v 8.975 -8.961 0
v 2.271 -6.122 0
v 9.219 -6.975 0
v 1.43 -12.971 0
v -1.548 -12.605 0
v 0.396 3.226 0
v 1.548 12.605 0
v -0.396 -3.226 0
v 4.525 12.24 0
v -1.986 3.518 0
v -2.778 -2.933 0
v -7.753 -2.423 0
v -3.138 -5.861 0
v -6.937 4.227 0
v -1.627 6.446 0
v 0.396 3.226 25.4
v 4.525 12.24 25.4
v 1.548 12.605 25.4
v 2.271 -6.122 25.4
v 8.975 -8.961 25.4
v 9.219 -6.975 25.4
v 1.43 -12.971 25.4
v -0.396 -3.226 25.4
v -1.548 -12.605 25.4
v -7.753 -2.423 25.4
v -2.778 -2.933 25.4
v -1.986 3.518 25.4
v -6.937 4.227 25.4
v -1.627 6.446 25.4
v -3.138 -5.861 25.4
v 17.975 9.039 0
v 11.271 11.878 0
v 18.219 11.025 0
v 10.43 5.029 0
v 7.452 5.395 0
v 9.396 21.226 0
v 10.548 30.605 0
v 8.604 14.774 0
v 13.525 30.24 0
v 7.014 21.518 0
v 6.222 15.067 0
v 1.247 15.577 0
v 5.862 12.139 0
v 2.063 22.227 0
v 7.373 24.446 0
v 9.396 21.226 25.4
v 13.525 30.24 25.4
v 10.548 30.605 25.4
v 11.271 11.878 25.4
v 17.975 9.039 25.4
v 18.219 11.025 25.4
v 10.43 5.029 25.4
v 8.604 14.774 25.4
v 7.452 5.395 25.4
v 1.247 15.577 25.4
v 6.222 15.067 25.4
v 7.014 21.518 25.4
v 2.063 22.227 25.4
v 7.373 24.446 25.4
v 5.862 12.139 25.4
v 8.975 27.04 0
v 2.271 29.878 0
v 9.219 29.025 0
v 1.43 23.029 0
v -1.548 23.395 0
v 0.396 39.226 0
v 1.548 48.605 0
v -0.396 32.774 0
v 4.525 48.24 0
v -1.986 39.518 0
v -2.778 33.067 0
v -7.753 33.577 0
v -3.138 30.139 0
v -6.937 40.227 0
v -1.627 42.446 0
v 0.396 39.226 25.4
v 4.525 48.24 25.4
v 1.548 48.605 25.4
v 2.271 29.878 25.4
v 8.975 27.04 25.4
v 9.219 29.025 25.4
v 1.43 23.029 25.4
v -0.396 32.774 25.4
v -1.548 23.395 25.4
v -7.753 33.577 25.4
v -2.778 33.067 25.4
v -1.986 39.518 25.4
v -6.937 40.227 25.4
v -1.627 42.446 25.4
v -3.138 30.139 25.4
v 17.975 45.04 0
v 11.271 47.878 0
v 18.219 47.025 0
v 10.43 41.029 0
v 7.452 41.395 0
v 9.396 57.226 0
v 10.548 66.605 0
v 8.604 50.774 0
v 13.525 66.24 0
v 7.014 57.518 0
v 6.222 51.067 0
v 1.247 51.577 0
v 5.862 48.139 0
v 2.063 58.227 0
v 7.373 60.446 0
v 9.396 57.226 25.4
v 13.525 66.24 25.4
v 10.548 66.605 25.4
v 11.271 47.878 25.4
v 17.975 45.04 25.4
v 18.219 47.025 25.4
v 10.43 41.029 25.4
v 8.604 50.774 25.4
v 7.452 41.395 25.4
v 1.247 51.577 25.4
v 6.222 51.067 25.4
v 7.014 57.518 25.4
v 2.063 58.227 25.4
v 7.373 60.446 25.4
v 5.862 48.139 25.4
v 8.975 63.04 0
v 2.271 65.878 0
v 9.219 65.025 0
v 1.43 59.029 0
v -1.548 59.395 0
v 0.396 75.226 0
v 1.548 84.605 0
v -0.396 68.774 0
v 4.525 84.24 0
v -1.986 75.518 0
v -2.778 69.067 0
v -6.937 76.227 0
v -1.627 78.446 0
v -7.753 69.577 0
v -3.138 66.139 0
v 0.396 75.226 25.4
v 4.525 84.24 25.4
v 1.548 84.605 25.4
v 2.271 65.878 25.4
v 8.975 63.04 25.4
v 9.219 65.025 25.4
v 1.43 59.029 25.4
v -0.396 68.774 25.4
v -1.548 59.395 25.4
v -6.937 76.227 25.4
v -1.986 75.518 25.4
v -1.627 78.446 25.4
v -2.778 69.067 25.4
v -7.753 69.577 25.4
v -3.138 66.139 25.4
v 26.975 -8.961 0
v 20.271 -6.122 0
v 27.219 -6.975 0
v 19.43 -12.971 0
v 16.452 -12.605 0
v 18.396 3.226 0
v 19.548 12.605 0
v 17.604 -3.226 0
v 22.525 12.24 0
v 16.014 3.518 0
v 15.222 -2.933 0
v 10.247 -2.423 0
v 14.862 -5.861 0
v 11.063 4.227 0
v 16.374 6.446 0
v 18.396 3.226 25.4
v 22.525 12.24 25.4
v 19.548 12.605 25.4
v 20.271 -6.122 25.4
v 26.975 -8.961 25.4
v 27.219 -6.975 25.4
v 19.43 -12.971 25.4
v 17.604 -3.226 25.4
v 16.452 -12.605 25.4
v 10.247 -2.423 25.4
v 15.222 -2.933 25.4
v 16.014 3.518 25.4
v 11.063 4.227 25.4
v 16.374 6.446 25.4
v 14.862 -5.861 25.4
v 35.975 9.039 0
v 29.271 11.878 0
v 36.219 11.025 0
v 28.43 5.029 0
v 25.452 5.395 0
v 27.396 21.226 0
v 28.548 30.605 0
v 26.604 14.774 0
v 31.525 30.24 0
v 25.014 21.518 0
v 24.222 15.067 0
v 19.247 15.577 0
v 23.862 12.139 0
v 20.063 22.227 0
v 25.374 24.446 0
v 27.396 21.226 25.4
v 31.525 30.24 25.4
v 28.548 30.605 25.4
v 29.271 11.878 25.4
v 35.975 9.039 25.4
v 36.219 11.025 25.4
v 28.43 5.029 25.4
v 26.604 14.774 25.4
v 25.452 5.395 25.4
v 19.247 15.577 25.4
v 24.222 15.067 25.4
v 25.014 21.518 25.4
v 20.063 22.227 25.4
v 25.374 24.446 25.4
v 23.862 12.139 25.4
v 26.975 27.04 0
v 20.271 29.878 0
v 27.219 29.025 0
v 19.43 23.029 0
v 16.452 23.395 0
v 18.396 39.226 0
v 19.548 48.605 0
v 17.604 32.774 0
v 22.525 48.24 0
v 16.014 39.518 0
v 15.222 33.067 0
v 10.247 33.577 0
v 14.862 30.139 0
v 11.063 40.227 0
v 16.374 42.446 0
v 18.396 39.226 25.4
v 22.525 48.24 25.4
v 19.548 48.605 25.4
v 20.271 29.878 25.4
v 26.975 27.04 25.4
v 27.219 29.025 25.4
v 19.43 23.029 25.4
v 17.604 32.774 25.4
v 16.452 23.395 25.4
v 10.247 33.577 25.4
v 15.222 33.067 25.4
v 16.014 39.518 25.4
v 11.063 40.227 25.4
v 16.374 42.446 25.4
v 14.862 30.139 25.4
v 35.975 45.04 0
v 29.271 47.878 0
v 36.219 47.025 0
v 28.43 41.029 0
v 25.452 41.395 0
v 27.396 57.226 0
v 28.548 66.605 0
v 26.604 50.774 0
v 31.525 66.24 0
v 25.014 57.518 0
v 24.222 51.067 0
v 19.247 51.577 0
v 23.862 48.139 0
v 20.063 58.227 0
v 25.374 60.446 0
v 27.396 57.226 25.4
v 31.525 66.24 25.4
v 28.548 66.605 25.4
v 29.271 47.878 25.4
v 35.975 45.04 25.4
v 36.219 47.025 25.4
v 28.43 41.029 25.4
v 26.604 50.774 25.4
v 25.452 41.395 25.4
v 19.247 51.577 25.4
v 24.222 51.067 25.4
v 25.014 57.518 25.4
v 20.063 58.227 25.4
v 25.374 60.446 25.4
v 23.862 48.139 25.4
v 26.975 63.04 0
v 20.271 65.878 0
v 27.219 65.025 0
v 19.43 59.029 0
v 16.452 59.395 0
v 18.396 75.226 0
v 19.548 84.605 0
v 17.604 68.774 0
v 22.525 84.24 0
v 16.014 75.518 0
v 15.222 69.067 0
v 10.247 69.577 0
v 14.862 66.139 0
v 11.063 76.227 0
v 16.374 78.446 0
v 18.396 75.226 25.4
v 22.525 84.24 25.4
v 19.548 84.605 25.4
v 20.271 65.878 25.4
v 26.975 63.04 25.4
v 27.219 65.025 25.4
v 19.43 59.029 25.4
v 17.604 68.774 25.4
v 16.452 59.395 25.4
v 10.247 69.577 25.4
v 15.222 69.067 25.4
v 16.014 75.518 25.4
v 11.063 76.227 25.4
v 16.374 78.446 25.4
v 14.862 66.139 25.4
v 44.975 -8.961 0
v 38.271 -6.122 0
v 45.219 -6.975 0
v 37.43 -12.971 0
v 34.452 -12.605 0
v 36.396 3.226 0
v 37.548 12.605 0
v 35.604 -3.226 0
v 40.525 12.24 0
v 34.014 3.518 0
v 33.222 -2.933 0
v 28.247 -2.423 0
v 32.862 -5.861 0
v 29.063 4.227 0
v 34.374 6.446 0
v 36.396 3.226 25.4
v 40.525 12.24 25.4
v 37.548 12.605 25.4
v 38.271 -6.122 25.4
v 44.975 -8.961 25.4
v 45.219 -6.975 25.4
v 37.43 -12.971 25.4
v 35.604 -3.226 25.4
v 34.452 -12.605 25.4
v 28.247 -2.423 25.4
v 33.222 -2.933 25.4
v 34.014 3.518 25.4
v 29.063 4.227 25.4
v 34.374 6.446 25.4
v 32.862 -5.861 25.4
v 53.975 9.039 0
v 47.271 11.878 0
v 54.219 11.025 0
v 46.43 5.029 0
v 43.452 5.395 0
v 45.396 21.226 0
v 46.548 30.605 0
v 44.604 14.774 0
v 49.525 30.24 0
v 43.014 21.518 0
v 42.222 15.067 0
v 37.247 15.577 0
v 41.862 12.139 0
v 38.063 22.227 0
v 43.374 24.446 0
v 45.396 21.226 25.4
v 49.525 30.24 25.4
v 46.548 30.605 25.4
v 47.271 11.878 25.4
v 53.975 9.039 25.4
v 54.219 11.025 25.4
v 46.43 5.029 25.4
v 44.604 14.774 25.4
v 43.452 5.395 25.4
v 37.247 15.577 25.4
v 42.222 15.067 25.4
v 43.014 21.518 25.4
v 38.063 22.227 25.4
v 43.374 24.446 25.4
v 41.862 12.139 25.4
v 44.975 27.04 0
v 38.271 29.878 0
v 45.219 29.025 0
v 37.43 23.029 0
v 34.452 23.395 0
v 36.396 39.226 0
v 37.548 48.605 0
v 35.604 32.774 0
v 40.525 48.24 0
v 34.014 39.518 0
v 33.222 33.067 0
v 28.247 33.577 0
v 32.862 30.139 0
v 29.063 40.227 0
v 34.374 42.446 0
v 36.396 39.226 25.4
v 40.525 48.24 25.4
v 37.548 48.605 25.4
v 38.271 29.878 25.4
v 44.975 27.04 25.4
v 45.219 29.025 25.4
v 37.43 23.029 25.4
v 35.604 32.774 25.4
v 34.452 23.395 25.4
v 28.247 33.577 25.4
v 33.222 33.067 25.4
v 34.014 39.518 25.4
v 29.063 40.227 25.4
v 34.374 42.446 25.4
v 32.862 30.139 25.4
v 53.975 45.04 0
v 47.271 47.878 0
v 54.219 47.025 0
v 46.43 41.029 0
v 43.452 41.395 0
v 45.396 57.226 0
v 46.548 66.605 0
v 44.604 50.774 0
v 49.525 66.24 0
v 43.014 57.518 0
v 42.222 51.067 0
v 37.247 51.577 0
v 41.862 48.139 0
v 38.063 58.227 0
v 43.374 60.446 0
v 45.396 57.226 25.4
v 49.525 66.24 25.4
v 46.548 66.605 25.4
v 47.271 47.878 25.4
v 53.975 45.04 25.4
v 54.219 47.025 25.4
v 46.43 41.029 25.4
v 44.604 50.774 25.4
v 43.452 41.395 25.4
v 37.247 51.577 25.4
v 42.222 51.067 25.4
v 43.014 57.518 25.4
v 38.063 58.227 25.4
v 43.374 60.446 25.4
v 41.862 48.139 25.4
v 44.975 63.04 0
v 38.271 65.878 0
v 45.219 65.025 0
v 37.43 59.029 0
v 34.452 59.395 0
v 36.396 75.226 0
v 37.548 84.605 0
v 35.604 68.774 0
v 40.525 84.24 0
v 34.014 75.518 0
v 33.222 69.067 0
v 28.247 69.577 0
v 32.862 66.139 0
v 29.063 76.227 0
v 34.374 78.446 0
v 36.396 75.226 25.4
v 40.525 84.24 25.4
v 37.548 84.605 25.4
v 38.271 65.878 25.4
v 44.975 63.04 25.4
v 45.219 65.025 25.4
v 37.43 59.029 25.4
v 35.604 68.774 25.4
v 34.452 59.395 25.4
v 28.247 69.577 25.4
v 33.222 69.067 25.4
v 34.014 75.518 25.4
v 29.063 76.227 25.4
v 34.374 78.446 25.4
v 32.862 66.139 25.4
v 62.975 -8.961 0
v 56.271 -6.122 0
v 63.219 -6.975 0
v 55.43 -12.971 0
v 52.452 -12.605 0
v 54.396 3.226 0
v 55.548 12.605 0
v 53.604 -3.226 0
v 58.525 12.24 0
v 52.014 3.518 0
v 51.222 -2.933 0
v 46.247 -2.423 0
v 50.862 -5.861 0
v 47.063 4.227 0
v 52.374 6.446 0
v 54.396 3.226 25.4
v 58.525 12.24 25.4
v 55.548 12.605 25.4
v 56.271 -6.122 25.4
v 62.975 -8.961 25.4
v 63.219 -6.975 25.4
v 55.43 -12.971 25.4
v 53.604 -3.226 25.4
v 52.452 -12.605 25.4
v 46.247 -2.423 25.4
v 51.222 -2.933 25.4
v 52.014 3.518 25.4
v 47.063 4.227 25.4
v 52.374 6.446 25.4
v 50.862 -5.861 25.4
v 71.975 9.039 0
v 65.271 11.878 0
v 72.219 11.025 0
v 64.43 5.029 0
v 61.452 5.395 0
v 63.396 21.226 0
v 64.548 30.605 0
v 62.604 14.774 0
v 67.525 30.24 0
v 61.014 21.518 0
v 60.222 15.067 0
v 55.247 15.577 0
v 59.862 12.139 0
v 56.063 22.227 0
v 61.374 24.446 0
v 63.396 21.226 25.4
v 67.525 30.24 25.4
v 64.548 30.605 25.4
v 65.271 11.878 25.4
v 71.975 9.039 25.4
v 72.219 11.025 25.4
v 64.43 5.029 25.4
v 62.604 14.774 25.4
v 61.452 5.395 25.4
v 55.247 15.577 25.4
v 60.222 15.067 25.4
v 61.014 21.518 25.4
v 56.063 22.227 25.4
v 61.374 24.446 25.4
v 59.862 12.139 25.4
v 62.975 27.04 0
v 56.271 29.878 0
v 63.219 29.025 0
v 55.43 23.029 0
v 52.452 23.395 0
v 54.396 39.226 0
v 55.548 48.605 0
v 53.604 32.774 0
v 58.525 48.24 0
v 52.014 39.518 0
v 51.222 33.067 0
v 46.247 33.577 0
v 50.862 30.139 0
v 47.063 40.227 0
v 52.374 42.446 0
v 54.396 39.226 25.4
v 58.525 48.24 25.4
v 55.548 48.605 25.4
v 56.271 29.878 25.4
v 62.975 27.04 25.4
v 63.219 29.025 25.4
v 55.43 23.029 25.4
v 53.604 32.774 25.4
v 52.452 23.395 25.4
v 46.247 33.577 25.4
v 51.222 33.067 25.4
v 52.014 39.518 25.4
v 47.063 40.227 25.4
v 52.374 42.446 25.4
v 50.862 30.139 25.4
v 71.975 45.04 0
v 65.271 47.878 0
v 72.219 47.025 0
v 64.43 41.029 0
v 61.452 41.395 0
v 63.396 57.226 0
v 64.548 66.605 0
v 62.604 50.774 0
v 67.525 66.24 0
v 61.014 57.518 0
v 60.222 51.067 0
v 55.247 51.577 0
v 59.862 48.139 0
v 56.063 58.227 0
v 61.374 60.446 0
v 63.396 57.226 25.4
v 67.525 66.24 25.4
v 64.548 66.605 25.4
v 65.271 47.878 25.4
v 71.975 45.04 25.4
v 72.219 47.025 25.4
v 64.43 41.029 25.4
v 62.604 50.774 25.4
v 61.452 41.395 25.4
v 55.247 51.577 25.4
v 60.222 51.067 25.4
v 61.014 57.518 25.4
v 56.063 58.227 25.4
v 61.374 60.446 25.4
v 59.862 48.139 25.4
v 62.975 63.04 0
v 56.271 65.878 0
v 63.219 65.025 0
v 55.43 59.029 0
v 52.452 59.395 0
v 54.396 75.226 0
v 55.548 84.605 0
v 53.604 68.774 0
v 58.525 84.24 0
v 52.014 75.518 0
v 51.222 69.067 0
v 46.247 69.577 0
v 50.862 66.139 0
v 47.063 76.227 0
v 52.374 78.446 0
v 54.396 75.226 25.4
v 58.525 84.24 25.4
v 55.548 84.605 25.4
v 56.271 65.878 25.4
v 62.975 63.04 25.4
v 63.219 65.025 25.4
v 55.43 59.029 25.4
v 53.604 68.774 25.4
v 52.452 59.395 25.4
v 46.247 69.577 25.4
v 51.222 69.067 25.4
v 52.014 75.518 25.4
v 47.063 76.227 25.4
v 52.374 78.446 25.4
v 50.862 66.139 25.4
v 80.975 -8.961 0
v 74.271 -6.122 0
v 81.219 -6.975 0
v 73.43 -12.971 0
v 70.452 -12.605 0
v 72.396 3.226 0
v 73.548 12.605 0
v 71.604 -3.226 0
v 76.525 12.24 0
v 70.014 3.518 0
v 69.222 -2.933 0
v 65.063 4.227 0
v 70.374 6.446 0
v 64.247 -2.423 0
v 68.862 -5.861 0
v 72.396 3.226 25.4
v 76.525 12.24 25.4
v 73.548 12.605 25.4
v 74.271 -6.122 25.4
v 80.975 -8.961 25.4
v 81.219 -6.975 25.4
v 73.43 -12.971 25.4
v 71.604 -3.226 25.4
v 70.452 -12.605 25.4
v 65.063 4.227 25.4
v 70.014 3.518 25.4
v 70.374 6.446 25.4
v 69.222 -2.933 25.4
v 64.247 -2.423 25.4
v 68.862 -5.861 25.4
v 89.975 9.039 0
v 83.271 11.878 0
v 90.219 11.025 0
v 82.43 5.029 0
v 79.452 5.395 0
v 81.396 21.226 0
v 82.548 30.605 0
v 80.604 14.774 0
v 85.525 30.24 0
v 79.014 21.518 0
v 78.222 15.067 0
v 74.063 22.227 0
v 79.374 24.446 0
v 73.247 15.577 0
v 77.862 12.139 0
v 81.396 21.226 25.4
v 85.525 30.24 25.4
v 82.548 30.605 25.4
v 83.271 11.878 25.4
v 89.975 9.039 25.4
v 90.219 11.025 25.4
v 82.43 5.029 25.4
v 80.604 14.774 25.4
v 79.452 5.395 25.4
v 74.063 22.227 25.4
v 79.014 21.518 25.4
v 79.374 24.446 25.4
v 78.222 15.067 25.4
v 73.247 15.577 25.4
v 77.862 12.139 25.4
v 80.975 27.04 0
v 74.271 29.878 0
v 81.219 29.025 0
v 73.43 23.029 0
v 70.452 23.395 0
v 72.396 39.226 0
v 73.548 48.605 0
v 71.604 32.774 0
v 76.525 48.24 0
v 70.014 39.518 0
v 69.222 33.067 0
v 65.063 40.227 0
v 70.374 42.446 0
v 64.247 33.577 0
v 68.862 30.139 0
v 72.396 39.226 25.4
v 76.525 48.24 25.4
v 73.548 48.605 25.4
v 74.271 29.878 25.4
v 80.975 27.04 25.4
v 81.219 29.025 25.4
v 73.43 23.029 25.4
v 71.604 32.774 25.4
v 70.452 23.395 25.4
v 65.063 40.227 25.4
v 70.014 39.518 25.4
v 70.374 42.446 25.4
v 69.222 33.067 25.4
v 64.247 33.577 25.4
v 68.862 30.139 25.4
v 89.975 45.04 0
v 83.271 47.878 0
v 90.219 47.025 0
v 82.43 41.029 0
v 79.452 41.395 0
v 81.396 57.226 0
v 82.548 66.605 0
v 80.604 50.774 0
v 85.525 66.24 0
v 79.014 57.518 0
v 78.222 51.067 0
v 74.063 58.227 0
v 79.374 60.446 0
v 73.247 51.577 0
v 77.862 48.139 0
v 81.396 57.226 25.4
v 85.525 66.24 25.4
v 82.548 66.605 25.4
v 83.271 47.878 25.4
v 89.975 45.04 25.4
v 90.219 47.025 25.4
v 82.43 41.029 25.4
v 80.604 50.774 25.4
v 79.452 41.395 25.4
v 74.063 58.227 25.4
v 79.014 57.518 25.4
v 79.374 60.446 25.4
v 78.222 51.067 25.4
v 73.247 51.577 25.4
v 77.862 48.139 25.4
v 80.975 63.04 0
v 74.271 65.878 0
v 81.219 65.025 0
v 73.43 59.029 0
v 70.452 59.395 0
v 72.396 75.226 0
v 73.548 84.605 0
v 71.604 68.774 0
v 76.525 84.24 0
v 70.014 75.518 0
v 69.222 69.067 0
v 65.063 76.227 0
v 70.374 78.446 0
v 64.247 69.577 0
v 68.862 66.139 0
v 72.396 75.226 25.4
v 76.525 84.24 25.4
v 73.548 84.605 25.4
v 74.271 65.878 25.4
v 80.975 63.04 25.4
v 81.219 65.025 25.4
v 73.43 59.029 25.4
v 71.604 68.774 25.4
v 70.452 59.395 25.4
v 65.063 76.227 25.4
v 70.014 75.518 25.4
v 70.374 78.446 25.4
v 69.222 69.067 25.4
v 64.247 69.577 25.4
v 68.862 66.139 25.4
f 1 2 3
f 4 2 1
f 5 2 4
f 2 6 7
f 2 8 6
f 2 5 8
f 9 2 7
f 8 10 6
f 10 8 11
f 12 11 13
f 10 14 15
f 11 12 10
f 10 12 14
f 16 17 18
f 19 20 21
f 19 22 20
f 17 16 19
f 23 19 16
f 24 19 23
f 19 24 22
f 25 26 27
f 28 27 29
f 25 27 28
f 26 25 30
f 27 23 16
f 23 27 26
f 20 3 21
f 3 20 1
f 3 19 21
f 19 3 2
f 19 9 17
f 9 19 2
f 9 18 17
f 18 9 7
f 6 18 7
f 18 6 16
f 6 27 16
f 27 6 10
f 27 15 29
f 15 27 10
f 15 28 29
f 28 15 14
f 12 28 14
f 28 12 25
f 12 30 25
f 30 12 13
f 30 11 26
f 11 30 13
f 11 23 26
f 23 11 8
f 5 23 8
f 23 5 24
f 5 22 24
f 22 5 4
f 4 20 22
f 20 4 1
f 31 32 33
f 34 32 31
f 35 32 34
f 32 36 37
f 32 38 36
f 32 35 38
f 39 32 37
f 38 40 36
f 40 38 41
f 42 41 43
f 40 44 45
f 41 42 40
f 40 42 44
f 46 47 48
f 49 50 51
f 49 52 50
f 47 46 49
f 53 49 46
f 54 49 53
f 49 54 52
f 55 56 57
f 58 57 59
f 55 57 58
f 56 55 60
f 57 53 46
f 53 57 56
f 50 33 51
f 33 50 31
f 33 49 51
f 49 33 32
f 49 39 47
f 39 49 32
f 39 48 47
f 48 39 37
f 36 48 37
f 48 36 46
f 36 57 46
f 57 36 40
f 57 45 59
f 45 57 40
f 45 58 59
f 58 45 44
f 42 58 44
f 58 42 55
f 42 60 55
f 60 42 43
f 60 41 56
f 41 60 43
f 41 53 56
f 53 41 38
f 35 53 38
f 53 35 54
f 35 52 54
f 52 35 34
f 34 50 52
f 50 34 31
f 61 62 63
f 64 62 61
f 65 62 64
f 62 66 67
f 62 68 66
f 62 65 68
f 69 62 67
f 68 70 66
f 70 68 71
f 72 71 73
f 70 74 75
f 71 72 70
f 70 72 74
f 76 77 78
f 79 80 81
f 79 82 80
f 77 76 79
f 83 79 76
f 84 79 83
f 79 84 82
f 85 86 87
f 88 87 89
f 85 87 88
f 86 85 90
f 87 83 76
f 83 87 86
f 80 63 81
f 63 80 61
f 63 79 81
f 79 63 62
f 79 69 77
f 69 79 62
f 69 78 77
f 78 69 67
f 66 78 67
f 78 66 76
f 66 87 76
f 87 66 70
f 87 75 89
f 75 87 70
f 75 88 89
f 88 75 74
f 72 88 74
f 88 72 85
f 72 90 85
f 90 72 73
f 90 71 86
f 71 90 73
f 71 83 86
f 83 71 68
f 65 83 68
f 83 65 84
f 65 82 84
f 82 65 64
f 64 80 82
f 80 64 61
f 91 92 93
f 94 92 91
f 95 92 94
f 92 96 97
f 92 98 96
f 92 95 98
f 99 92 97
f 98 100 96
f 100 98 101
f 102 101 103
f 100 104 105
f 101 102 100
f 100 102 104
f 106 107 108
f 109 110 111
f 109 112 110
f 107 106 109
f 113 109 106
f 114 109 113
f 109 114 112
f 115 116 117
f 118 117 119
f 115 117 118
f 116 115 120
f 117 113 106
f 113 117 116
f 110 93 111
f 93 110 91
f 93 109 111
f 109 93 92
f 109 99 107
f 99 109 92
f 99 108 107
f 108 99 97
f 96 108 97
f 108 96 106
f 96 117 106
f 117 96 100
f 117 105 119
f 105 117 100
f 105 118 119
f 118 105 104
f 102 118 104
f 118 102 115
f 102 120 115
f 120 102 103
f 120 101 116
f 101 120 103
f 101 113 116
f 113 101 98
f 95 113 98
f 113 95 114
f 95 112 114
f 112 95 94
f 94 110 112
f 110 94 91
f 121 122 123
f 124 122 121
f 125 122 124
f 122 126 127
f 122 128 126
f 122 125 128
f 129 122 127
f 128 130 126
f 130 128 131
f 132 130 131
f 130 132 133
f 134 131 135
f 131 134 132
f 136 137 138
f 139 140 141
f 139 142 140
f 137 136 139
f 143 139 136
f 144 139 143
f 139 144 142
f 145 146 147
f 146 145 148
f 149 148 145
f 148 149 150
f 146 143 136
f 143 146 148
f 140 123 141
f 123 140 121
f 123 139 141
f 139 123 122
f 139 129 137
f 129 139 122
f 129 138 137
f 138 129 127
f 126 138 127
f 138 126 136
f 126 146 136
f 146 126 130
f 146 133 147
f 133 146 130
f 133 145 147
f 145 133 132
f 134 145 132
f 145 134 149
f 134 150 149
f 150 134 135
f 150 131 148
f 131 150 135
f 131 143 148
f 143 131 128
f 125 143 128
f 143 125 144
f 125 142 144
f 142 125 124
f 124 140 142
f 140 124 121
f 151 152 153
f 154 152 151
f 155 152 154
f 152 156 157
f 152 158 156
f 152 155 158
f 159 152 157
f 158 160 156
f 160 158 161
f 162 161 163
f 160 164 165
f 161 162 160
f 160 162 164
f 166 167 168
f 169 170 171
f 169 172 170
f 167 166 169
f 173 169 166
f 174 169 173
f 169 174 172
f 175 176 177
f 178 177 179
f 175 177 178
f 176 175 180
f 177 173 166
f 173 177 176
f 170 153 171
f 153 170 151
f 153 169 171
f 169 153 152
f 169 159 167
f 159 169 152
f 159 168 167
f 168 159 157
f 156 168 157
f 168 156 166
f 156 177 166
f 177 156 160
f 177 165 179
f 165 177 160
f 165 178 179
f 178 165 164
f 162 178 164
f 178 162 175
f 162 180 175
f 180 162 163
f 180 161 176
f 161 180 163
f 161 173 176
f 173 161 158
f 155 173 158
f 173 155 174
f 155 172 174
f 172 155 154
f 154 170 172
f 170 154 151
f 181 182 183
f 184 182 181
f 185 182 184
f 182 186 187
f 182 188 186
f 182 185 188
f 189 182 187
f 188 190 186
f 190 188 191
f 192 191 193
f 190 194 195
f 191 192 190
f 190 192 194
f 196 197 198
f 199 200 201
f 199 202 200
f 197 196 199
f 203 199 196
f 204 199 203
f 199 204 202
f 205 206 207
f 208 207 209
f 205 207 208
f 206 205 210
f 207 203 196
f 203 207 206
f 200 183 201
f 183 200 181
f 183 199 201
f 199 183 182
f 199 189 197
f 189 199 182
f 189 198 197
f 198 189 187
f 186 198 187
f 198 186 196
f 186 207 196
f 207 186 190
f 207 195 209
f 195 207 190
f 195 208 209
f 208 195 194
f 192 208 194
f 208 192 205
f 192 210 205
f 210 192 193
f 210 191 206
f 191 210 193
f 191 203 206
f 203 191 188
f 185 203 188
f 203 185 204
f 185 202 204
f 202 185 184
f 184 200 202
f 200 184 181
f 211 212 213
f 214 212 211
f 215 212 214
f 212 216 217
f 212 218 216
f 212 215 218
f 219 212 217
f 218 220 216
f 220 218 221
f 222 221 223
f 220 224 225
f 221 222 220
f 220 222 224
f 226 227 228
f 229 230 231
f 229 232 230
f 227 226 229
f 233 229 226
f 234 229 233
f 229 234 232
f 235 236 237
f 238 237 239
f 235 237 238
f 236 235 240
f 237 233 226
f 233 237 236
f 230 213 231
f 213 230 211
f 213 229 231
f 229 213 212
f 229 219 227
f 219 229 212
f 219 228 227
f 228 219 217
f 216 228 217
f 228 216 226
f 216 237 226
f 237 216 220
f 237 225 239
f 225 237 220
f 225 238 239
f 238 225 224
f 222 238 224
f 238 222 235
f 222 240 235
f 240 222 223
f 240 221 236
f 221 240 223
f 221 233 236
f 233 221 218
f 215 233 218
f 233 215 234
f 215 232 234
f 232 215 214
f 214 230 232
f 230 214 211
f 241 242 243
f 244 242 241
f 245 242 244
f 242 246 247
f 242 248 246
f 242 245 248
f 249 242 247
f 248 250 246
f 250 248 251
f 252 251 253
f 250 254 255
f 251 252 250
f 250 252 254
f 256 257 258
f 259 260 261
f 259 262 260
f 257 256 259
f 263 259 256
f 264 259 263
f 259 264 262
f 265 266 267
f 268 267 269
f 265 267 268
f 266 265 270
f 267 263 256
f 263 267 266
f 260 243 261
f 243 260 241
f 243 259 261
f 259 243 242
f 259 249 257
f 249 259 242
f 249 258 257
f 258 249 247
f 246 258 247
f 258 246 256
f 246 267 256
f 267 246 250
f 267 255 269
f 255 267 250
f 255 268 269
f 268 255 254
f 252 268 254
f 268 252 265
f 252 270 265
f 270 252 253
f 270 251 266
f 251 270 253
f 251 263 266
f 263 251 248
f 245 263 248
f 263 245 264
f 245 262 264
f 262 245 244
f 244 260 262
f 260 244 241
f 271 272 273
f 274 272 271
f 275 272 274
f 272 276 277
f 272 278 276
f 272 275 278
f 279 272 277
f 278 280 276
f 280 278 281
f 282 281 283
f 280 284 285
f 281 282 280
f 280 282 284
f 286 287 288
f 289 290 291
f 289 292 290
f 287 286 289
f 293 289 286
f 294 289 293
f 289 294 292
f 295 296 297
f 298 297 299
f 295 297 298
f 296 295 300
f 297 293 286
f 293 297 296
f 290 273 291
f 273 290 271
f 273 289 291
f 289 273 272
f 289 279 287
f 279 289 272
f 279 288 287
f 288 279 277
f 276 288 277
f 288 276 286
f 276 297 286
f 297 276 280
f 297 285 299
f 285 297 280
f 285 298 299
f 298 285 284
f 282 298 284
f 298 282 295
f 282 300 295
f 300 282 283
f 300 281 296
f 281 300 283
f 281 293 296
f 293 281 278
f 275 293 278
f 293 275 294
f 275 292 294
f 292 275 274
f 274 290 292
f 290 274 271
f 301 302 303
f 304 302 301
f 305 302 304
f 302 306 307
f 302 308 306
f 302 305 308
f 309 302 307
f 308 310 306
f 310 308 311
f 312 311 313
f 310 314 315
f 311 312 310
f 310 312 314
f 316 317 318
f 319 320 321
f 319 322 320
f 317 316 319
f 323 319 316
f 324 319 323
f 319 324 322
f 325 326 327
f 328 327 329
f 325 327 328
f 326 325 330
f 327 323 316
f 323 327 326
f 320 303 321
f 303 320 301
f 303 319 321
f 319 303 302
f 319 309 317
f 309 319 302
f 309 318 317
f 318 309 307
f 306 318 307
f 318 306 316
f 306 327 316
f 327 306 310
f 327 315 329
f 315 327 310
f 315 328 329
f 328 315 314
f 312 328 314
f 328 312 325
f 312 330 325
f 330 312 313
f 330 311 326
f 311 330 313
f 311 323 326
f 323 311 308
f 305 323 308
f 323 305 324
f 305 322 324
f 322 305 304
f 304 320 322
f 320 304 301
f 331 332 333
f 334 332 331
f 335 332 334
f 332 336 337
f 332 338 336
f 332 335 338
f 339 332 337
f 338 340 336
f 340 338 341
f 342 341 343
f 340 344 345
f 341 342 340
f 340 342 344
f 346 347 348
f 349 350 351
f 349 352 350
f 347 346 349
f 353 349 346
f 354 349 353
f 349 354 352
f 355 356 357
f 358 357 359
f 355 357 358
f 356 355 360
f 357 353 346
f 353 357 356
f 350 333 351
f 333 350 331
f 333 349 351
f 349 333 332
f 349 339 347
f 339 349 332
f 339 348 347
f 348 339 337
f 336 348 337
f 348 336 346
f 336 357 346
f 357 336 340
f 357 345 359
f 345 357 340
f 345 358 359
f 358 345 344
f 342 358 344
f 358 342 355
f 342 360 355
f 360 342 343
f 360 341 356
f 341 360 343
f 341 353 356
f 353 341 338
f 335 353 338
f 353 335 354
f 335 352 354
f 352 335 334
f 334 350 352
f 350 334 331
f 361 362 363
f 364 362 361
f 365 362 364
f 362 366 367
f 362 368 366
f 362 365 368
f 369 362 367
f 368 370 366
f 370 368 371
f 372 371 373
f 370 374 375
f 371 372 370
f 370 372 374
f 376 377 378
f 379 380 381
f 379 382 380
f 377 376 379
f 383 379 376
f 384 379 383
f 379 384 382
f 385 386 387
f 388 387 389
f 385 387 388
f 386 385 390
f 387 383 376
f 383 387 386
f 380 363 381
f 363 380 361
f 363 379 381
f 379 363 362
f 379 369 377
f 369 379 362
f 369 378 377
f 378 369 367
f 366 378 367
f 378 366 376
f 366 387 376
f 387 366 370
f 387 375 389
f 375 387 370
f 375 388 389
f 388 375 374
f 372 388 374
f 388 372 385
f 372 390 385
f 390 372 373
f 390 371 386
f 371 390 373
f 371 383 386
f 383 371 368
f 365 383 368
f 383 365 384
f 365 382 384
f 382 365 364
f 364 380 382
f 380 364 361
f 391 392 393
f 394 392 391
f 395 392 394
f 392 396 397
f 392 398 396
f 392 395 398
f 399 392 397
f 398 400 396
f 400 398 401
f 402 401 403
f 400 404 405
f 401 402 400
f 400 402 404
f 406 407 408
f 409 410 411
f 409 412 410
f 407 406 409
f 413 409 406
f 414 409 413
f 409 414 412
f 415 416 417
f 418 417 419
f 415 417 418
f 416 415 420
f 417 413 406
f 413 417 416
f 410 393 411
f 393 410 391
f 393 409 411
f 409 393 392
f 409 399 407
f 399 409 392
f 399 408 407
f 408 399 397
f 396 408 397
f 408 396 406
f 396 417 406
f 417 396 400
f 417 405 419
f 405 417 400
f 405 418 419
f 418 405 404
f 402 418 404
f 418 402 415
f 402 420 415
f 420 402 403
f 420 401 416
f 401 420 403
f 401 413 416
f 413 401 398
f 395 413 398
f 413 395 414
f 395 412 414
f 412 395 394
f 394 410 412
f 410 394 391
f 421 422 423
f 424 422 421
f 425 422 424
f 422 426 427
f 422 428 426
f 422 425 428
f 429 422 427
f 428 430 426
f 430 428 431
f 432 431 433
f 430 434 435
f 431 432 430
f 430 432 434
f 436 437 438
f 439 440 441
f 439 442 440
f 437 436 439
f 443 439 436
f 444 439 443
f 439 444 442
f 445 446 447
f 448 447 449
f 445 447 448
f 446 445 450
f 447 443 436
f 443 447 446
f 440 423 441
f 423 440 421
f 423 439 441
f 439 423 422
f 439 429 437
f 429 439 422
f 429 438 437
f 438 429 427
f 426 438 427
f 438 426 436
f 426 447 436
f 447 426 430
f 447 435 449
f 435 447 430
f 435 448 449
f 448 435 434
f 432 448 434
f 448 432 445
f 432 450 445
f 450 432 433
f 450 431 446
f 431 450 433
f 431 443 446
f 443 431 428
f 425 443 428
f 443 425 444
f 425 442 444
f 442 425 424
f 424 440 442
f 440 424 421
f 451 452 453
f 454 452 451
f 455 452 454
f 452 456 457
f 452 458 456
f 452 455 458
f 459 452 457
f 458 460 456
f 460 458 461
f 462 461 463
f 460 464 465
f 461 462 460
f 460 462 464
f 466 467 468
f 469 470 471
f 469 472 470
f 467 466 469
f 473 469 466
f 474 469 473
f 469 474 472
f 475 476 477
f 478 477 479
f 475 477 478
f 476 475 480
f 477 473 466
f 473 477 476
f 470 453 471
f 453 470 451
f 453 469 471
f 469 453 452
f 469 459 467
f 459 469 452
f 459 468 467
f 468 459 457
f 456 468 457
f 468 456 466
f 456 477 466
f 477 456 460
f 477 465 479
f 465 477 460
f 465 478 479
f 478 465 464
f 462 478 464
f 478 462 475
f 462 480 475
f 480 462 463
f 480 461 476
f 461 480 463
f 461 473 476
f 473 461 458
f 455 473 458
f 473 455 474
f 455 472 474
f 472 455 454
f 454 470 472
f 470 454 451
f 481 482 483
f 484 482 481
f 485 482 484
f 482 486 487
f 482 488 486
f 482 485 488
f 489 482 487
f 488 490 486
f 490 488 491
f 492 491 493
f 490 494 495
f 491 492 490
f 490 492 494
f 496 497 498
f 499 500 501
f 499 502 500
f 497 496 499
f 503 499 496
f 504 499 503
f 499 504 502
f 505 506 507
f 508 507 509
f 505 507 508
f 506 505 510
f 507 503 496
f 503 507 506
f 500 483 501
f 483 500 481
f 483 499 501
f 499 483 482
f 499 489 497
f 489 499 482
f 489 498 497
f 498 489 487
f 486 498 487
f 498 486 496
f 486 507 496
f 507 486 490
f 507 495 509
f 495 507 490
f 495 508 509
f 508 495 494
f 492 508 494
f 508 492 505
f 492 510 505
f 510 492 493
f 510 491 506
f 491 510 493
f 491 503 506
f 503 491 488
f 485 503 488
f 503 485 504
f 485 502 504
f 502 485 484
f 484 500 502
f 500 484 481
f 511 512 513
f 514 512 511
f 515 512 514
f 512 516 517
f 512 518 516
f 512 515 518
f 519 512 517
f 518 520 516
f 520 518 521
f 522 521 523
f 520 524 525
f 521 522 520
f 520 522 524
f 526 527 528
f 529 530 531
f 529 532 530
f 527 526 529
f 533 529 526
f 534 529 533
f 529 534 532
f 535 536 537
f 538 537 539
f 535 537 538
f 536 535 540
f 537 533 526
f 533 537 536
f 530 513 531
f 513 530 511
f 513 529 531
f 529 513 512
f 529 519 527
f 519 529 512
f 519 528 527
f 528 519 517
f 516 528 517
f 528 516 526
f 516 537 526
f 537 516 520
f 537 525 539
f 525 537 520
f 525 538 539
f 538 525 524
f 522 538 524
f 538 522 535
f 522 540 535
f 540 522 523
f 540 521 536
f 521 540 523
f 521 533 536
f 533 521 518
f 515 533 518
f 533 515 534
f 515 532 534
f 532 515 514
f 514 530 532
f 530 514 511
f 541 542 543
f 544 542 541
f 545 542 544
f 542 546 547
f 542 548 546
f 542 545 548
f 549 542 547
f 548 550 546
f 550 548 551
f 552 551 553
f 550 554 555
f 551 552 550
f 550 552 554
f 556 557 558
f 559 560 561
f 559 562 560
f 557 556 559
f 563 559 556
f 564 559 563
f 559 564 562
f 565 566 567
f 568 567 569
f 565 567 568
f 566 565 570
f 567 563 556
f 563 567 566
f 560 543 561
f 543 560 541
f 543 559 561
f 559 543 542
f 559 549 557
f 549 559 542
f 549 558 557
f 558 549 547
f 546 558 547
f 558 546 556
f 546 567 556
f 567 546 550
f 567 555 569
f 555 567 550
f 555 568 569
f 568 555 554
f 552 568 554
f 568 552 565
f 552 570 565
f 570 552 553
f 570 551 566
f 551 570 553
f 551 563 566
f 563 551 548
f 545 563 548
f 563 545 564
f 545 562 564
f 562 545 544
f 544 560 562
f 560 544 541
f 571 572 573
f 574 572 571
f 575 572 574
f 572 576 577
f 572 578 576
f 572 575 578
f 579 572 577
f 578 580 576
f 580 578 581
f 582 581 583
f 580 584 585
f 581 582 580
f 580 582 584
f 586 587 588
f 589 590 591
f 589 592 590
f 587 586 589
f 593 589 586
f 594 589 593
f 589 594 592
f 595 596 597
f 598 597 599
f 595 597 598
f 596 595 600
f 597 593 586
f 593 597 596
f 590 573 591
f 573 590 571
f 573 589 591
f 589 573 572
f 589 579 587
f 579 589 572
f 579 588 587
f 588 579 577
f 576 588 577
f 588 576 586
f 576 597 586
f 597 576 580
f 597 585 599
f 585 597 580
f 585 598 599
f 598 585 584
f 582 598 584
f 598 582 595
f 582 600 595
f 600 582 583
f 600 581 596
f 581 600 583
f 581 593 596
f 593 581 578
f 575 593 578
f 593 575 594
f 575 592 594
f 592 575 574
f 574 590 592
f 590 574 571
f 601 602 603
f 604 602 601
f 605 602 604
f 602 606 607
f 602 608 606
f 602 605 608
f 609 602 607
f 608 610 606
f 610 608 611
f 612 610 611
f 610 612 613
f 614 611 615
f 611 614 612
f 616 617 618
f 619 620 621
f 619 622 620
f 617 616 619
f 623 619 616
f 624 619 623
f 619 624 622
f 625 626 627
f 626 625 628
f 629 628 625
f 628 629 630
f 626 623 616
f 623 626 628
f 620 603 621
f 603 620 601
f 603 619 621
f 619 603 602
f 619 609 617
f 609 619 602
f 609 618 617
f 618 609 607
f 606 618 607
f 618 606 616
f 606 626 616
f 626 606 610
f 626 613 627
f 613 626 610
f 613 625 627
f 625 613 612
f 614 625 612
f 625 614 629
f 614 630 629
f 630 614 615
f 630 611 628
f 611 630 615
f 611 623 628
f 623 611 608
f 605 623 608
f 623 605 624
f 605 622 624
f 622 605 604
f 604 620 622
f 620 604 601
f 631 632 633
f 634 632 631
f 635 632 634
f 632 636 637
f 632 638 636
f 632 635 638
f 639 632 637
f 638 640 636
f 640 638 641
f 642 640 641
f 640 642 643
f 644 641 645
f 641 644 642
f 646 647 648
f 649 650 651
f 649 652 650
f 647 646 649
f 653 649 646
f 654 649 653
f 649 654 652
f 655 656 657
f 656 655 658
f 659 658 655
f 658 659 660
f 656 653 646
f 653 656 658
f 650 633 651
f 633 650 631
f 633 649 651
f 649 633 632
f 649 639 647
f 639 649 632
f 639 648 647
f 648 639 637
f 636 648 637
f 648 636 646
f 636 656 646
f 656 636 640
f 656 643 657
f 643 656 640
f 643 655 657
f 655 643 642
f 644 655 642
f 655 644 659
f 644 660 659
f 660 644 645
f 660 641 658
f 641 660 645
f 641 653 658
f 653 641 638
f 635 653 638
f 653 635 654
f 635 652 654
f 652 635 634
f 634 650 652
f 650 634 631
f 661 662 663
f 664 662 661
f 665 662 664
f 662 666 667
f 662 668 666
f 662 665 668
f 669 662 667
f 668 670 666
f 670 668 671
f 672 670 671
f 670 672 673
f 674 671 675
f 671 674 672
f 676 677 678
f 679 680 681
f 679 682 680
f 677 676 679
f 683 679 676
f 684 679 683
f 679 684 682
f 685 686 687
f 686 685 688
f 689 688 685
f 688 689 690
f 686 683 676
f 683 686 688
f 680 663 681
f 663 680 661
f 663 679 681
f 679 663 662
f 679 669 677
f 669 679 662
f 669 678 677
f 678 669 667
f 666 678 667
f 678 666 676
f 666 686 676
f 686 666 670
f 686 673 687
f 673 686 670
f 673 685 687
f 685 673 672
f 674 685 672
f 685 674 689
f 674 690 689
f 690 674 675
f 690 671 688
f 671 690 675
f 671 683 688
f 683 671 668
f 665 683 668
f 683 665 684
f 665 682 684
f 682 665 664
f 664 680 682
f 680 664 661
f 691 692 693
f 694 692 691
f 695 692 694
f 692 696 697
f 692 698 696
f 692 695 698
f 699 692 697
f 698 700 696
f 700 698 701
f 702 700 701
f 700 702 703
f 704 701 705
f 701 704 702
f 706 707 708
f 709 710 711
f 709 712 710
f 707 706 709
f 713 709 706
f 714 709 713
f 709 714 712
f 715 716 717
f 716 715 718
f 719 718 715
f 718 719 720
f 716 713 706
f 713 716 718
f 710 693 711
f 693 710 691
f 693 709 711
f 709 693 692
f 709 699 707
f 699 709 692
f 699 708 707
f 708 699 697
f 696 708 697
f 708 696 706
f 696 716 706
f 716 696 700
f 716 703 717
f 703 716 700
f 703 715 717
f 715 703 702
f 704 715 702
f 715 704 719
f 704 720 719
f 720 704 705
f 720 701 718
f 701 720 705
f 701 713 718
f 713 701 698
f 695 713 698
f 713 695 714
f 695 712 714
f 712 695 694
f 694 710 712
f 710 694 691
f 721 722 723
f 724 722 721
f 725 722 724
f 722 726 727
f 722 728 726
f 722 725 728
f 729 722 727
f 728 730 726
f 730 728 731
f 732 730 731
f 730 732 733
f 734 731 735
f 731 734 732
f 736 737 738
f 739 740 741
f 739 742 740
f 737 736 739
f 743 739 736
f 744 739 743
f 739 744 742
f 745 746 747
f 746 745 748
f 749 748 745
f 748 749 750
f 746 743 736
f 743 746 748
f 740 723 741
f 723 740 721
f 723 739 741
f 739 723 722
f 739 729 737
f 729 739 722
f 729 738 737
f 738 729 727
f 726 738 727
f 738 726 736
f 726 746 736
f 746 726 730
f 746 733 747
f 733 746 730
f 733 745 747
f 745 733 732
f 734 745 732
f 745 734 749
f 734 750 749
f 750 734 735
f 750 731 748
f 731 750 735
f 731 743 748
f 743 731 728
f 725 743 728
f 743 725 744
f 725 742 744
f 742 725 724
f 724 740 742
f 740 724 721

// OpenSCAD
total_h = 25.4;
l_min_d = 3;
l_max_d = 10;
board_h = 18.5;
plug_back_h = 6.7;
plug_front_h = 12.4;
plug_d = 5;
conn_d = 2.4;
conn_h = 6.5;
back_d = conn_d + plug_d;
tip_h = 2;

module bracket_poly() {
  polygon(points=[[0, conn_h/2], [0, total_h/2], [l_min_d, total_h/2], [l_min_d, total_h/2 - board_h],
                  [l_max_d, total_h/2 - board_h], [l_max_d, total_h/2 - board_h - tip_h], [l_min_d, -total_h/2], [0, -total_h/2], [0, -conn_h/2],
                  [-conn_d, -conn_h/2], [-conn_d, -plug_front_h/2], [-back_d, -plug_back_h/2],
                  [-back_d, plug_back_h/2], [-conn_d, plug_front_h/2], [-conn_d, conn_h/2], [0, conn_h/2]]);
}

module bracket() {
  color ("red") linear_extrude (height=25.4) bracket_poly();
}

for(x_i = [0 : 4]) {
  for(y = [0 : 4]) {
    x = x_i + (y % 2) * 0.5;
    translate([18 * x, 18 * y])
      rotate([0,0,-7])
        bracket();
  }
}
